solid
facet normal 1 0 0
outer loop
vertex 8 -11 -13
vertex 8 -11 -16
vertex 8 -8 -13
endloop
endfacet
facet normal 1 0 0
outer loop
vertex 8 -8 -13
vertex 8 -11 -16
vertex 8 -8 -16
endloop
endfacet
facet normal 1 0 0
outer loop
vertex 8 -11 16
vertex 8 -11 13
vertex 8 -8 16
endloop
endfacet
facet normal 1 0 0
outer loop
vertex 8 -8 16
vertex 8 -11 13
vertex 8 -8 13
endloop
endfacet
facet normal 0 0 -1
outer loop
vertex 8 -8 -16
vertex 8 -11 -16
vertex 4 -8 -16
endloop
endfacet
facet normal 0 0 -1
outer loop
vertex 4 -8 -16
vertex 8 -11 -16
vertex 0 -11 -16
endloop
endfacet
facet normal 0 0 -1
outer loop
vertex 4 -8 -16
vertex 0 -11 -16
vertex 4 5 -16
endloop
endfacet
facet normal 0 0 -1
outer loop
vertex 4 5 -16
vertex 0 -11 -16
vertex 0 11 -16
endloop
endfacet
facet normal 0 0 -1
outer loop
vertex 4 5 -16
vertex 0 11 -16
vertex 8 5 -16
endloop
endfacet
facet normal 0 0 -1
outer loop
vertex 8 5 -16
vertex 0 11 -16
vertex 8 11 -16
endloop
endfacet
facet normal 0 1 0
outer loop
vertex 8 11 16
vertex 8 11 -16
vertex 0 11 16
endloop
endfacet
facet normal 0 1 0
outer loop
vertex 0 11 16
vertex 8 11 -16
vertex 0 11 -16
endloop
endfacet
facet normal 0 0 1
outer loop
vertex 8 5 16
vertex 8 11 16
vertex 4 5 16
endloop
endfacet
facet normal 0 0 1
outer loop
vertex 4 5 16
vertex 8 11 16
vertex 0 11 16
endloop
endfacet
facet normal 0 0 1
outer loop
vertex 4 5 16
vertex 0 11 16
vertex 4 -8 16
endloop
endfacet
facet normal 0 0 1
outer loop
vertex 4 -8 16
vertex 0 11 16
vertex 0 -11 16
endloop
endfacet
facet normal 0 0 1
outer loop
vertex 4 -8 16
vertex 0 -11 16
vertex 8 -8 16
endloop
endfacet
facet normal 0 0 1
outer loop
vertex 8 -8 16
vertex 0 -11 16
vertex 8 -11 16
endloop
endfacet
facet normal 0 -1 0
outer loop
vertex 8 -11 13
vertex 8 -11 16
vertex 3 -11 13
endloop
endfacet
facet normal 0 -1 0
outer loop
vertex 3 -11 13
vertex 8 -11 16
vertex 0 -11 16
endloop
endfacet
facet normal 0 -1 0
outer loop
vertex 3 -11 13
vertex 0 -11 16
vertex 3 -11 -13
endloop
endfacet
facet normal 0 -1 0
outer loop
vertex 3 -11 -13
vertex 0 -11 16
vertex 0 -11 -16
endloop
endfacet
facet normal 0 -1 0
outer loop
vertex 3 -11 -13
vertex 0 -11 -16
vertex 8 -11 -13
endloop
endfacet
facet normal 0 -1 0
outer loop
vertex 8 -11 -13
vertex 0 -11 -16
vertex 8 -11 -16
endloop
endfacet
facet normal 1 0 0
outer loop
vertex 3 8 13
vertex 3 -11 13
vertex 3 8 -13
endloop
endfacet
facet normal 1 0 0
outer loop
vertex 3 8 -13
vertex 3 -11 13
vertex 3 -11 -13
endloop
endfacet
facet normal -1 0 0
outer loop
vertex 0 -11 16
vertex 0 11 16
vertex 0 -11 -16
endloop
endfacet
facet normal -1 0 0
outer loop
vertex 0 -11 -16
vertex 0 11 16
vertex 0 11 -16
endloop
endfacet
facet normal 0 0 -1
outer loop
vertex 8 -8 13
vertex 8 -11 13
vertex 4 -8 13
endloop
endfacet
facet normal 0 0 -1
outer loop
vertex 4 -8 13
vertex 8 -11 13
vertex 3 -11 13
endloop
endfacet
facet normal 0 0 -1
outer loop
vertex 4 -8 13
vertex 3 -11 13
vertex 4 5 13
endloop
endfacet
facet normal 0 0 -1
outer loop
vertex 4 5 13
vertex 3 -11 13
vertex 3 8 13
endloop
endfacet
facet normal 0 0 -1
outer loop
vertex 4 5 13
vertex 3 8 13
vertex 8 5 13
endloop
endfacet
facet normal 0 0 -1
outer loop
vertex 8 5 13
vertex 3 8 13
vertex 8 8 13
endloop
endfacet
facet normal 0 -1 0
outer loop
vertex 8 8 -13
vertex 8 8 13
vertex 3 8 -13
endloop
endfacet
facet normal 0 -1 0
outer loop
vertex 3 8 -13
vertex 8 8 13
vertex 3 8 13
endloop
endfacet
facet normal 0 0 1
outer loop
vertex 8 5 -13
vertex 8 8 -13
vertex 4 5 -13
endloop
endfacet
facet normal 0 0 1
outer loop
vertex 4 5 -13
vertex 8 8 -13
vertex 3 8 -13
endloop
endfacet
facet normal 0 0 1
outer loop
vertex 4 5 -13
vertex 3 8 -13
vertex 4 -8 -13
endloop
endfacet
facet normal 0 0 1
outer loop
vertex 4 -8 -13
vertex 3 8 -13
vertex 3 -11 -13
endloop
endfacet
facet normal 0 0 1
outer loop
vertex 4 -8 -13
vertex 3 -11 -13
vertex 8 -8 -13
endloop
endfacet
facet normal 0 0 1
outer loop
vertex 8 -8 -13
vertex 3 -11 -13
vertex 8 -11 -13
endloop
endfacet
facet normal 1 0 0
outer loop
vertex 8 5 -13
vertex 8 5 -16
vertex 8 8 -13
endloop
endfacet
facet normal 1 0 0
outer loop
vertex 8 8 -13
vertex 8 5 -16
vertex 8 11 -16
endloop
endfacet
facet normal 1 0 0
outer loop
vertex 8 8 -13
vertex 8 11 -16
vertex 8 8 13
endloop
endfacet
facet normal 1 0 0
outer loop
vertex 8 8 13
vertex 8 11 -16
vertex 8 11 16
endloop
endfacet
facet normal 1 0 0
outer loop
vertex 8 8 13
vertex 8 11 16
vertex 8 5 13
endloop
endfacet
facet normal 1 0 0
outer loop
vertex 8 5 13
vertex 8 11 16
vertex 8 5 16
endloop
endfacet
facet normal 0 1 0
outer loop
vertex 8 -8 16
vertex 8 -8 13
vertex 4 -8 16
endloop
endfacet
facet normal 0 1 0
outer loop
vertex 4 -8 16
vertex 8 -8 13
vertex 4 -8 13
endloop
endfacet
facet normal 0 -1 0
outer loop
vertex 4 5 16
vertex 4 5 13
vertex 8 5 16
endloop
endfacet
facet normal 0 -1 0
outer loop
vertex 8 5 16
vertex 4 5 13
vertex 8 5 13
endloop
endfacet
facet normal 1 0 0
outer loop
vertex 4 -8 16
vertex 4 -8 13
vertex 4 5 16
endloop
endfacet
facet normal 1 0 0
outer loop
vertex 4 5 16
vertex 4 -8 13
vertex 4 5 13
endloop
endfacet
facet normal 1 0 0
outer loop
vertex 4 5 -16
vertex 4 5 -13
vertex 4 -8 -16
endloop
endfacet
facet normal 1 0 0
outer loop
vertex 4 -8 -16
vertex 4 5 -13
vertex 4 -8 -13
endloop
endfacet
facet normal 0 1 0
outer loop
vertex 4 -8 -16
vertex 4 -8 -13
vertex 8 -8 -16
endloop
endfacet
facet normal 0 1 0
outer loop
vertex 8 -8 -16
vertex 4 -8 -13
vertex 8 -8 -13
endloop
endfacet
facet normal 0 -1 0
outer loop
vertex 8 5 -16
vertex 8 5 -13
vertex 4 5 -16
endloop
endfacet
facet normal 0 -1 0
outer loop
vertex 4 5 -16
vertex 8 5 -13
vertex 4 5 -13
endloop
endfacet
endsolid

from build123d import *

# Parameters (mm, degrees)
SKETCH1_W           = 32
SKETCH1_H           = 22
BOSS_EXTRUDE1_DEPTH = 3
BOSS_EXTRUDE6_DEPTH = 5
SKETCH8_W           = 4
SKETCH8_H           = 13
CUT_EXTRUDE3_DEPTH  = 32


with BuildPart() as part:
    # Sketch1 → Boss-Extrude1 (new body)
    with BuildSketch(Plane(origin=(0, 0, 0), x_dir=(0, 0, -1), z_dir=(1, 0, 0))):
        Rectangle(SKETCH1_W, SKETCH1_H)
    extrude(amount=BOSS_EXTRUDE1_DEPTH)

    # Sketch7 → Boss-Extrude6 (add)
    with BuildSketch(Plane(origin=(3, 0, 0), x_dir=(0, 0, -1), z_dir=(1, 0, 0))):
        Polygon((16, -11), (16, 11), (-16, 11), (-16, -11), (-13, -11), (-13, 8), (13, 8), (13, -11), align=None)
    extrude(amount=BOSS_EXTRUDE6_DEPTH)

    # Sketch8 → Cut-Extrude3 (cut)
    with BuildSketch(Plane.XY.offset(16)):
        with Locations((6, -1.5)):
            Rectangle(SKETCH8_W, SKETCH8_H)
    extrude(amount=-CUT_EXTRUDE3_DEPTH, mode=Mode.SUBTRACT)


solid = part.part
